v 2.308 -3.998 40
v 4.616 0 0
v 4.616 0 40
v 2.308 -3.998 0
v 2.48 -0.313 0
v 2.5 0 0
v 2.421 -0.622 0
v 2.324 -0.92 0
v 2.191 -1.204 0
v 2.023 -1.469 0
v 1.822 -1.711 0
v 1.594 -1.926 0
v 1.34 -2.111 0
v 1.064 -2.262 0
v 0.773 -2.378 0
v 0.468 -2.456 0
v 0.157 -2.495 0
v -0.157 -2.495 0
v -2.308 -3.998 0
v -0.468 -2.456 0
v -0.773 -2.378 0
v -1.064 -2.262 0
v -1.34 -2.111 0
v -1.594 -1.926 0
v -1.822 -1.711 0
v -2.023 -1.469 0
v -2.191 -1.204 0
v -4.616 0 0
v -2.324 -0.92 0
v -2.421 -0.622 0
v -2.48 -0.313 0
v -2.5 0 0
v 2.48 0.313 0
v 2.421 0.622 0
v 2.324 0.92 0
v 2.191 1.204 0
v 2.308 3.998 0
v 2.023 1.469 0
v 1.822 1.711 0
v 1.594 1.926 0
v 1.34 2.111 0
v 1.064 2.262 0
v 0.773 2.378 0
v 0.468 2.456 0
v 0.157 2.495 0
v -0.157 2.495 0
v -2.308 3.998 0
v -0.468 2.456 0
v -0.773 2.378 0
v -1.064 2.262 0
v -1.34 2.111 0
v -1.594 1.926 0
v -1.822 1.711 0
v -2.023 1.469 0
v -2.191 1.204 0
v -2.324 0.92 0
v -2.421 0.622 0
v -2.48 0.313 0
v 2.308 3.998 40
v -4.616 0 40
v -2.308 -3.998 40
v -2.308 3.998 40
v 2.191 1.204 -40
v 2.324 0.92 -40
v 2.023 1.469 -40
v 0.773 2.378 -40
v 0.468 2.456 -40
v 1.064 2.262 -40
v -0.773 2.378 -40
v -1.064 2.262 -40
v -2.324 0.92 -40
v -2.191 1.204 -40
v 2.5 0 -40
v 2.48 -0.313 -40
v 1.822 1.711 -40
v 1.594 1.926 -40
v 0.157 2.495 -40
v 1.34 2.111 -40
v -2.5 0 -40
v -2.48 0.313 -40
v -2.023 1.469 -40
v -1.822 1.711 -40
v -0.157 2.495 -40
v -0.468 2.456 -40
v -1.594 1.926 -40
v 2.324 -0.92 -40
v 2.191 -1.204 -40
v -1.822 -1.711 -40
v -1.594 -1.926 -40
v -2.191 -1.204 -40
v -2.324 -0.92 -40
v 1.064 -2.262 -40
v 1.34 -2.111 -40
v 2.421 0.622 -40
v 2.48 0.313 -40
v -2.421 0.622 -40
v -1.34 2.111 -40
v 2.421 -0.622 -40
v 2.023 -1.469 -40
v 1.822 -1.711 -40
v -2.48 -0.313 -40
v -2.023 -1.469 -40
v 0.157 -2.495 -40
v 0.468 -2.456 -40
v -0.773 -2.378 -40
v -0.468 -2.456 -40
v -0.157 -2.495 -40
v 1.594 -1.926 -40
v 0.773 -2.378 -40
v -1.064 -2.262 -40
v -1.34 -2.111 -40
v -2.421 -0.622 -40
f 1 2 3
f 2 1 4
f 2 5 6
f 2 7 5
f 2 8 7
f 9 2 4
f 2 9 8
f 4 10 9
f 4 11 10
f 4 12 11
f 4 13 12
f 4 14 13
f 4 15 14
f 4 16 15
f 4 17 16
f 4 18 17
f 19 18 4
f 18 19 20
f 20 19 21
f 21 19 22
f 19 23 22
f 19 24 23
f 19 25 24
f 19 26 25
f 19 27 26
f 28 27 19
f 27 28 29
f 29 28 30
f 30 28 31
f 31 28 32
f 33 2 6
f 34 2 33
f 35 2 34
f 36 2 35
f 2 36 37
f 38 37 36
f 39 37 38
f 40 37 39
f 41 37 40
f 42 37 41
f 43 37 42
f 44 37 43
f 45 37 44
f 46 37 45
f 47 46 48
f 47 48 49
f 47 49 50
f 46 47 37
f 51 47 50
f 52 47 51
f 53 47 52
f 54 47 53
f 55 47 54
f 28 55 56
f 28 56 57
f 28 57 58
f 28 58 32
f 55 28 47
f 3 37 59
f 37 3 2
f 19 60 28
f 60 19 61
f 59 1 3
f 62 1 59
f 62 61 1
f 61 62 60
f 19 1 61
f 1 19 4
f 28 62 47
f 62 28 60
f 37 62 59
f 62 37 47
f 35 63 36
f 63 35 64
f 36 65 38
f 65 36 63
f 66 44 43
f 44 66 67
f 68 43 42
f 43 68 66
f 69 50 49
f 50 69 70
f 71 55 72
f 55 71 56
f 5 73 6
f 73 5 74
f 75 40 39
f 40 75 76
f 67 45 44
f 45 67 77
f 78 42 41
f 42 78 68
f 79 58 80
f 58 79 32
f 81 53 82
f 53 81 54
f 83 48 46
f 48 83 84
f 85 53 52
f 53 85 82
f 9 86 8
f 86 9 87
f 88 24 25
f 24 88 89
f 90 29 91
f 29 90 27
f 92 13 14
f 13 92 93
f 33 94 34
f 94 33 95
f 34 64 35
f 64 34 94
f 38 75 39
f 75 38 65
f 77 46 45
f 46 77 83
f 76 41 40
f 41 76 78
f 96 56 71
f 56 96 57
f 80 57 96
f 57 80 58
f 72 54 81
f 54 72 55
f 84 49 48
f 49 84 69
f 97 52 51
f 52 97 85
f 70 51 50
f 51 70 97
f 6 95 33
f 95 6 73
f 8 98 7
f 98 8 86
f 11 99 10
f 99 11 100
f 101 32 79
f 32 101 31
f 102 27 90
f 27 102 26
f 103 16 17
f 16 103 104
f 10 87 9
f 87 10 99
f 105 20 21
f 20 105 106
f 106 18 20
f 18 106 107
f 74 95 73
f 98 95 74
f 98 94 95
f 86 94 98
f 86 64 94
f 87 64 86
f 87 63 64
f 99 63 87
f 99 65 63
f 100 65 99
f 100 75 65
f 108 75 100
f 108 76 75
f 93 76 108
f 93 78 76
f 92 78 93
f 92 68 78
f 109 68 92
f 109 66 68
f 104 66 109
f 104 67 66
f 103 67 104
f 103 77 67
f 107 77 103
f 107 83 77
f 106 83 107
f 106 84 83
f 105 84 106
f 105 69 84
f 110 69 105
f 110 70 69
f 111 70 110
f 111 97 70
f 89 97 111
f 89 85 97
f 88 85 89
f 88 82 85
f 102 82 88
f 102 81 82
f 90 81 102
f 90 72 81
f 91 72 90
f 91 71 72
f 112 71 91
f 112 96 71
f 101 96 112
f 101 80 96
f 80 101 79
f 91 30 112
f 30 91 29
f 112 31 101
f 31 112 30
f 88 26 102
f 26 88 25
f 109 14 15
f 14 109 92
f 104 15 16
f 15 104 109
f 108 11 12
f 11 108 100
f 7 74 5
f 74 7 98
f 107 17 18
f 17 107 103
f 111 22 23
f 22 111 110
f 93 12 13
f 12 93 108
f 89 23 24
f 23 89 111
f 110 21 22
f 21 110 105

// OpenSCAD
$fn = 50;


difference() {
	union() {
		translate(v = [0, 0, 0]) {
			rotate(a = [0, 0, 0]) {
				translate(v = [0, 0, 0]) {
					rotate(a = [0, 0, 0]) {
						linear_extrude(height = 40) {
							polygon(points = [[4.6160000000, 0.0000000000], [2.3080000000, 3.9975732639], [-2.3080000000, 3.9975732639], [-4.6160000000, 0.0000000000], [-2.3080000000, -3.9975732639], [2.3080000000, -3.9975732639]]);
						}
					}
				}
			}
		}
		translate(v = [0, 0, -40]) {
			rotate(a = [0, 0, 0]) {
				cylinder(h = 40, r = 2.5000000000);
			}
		}
	}
	union();
}
